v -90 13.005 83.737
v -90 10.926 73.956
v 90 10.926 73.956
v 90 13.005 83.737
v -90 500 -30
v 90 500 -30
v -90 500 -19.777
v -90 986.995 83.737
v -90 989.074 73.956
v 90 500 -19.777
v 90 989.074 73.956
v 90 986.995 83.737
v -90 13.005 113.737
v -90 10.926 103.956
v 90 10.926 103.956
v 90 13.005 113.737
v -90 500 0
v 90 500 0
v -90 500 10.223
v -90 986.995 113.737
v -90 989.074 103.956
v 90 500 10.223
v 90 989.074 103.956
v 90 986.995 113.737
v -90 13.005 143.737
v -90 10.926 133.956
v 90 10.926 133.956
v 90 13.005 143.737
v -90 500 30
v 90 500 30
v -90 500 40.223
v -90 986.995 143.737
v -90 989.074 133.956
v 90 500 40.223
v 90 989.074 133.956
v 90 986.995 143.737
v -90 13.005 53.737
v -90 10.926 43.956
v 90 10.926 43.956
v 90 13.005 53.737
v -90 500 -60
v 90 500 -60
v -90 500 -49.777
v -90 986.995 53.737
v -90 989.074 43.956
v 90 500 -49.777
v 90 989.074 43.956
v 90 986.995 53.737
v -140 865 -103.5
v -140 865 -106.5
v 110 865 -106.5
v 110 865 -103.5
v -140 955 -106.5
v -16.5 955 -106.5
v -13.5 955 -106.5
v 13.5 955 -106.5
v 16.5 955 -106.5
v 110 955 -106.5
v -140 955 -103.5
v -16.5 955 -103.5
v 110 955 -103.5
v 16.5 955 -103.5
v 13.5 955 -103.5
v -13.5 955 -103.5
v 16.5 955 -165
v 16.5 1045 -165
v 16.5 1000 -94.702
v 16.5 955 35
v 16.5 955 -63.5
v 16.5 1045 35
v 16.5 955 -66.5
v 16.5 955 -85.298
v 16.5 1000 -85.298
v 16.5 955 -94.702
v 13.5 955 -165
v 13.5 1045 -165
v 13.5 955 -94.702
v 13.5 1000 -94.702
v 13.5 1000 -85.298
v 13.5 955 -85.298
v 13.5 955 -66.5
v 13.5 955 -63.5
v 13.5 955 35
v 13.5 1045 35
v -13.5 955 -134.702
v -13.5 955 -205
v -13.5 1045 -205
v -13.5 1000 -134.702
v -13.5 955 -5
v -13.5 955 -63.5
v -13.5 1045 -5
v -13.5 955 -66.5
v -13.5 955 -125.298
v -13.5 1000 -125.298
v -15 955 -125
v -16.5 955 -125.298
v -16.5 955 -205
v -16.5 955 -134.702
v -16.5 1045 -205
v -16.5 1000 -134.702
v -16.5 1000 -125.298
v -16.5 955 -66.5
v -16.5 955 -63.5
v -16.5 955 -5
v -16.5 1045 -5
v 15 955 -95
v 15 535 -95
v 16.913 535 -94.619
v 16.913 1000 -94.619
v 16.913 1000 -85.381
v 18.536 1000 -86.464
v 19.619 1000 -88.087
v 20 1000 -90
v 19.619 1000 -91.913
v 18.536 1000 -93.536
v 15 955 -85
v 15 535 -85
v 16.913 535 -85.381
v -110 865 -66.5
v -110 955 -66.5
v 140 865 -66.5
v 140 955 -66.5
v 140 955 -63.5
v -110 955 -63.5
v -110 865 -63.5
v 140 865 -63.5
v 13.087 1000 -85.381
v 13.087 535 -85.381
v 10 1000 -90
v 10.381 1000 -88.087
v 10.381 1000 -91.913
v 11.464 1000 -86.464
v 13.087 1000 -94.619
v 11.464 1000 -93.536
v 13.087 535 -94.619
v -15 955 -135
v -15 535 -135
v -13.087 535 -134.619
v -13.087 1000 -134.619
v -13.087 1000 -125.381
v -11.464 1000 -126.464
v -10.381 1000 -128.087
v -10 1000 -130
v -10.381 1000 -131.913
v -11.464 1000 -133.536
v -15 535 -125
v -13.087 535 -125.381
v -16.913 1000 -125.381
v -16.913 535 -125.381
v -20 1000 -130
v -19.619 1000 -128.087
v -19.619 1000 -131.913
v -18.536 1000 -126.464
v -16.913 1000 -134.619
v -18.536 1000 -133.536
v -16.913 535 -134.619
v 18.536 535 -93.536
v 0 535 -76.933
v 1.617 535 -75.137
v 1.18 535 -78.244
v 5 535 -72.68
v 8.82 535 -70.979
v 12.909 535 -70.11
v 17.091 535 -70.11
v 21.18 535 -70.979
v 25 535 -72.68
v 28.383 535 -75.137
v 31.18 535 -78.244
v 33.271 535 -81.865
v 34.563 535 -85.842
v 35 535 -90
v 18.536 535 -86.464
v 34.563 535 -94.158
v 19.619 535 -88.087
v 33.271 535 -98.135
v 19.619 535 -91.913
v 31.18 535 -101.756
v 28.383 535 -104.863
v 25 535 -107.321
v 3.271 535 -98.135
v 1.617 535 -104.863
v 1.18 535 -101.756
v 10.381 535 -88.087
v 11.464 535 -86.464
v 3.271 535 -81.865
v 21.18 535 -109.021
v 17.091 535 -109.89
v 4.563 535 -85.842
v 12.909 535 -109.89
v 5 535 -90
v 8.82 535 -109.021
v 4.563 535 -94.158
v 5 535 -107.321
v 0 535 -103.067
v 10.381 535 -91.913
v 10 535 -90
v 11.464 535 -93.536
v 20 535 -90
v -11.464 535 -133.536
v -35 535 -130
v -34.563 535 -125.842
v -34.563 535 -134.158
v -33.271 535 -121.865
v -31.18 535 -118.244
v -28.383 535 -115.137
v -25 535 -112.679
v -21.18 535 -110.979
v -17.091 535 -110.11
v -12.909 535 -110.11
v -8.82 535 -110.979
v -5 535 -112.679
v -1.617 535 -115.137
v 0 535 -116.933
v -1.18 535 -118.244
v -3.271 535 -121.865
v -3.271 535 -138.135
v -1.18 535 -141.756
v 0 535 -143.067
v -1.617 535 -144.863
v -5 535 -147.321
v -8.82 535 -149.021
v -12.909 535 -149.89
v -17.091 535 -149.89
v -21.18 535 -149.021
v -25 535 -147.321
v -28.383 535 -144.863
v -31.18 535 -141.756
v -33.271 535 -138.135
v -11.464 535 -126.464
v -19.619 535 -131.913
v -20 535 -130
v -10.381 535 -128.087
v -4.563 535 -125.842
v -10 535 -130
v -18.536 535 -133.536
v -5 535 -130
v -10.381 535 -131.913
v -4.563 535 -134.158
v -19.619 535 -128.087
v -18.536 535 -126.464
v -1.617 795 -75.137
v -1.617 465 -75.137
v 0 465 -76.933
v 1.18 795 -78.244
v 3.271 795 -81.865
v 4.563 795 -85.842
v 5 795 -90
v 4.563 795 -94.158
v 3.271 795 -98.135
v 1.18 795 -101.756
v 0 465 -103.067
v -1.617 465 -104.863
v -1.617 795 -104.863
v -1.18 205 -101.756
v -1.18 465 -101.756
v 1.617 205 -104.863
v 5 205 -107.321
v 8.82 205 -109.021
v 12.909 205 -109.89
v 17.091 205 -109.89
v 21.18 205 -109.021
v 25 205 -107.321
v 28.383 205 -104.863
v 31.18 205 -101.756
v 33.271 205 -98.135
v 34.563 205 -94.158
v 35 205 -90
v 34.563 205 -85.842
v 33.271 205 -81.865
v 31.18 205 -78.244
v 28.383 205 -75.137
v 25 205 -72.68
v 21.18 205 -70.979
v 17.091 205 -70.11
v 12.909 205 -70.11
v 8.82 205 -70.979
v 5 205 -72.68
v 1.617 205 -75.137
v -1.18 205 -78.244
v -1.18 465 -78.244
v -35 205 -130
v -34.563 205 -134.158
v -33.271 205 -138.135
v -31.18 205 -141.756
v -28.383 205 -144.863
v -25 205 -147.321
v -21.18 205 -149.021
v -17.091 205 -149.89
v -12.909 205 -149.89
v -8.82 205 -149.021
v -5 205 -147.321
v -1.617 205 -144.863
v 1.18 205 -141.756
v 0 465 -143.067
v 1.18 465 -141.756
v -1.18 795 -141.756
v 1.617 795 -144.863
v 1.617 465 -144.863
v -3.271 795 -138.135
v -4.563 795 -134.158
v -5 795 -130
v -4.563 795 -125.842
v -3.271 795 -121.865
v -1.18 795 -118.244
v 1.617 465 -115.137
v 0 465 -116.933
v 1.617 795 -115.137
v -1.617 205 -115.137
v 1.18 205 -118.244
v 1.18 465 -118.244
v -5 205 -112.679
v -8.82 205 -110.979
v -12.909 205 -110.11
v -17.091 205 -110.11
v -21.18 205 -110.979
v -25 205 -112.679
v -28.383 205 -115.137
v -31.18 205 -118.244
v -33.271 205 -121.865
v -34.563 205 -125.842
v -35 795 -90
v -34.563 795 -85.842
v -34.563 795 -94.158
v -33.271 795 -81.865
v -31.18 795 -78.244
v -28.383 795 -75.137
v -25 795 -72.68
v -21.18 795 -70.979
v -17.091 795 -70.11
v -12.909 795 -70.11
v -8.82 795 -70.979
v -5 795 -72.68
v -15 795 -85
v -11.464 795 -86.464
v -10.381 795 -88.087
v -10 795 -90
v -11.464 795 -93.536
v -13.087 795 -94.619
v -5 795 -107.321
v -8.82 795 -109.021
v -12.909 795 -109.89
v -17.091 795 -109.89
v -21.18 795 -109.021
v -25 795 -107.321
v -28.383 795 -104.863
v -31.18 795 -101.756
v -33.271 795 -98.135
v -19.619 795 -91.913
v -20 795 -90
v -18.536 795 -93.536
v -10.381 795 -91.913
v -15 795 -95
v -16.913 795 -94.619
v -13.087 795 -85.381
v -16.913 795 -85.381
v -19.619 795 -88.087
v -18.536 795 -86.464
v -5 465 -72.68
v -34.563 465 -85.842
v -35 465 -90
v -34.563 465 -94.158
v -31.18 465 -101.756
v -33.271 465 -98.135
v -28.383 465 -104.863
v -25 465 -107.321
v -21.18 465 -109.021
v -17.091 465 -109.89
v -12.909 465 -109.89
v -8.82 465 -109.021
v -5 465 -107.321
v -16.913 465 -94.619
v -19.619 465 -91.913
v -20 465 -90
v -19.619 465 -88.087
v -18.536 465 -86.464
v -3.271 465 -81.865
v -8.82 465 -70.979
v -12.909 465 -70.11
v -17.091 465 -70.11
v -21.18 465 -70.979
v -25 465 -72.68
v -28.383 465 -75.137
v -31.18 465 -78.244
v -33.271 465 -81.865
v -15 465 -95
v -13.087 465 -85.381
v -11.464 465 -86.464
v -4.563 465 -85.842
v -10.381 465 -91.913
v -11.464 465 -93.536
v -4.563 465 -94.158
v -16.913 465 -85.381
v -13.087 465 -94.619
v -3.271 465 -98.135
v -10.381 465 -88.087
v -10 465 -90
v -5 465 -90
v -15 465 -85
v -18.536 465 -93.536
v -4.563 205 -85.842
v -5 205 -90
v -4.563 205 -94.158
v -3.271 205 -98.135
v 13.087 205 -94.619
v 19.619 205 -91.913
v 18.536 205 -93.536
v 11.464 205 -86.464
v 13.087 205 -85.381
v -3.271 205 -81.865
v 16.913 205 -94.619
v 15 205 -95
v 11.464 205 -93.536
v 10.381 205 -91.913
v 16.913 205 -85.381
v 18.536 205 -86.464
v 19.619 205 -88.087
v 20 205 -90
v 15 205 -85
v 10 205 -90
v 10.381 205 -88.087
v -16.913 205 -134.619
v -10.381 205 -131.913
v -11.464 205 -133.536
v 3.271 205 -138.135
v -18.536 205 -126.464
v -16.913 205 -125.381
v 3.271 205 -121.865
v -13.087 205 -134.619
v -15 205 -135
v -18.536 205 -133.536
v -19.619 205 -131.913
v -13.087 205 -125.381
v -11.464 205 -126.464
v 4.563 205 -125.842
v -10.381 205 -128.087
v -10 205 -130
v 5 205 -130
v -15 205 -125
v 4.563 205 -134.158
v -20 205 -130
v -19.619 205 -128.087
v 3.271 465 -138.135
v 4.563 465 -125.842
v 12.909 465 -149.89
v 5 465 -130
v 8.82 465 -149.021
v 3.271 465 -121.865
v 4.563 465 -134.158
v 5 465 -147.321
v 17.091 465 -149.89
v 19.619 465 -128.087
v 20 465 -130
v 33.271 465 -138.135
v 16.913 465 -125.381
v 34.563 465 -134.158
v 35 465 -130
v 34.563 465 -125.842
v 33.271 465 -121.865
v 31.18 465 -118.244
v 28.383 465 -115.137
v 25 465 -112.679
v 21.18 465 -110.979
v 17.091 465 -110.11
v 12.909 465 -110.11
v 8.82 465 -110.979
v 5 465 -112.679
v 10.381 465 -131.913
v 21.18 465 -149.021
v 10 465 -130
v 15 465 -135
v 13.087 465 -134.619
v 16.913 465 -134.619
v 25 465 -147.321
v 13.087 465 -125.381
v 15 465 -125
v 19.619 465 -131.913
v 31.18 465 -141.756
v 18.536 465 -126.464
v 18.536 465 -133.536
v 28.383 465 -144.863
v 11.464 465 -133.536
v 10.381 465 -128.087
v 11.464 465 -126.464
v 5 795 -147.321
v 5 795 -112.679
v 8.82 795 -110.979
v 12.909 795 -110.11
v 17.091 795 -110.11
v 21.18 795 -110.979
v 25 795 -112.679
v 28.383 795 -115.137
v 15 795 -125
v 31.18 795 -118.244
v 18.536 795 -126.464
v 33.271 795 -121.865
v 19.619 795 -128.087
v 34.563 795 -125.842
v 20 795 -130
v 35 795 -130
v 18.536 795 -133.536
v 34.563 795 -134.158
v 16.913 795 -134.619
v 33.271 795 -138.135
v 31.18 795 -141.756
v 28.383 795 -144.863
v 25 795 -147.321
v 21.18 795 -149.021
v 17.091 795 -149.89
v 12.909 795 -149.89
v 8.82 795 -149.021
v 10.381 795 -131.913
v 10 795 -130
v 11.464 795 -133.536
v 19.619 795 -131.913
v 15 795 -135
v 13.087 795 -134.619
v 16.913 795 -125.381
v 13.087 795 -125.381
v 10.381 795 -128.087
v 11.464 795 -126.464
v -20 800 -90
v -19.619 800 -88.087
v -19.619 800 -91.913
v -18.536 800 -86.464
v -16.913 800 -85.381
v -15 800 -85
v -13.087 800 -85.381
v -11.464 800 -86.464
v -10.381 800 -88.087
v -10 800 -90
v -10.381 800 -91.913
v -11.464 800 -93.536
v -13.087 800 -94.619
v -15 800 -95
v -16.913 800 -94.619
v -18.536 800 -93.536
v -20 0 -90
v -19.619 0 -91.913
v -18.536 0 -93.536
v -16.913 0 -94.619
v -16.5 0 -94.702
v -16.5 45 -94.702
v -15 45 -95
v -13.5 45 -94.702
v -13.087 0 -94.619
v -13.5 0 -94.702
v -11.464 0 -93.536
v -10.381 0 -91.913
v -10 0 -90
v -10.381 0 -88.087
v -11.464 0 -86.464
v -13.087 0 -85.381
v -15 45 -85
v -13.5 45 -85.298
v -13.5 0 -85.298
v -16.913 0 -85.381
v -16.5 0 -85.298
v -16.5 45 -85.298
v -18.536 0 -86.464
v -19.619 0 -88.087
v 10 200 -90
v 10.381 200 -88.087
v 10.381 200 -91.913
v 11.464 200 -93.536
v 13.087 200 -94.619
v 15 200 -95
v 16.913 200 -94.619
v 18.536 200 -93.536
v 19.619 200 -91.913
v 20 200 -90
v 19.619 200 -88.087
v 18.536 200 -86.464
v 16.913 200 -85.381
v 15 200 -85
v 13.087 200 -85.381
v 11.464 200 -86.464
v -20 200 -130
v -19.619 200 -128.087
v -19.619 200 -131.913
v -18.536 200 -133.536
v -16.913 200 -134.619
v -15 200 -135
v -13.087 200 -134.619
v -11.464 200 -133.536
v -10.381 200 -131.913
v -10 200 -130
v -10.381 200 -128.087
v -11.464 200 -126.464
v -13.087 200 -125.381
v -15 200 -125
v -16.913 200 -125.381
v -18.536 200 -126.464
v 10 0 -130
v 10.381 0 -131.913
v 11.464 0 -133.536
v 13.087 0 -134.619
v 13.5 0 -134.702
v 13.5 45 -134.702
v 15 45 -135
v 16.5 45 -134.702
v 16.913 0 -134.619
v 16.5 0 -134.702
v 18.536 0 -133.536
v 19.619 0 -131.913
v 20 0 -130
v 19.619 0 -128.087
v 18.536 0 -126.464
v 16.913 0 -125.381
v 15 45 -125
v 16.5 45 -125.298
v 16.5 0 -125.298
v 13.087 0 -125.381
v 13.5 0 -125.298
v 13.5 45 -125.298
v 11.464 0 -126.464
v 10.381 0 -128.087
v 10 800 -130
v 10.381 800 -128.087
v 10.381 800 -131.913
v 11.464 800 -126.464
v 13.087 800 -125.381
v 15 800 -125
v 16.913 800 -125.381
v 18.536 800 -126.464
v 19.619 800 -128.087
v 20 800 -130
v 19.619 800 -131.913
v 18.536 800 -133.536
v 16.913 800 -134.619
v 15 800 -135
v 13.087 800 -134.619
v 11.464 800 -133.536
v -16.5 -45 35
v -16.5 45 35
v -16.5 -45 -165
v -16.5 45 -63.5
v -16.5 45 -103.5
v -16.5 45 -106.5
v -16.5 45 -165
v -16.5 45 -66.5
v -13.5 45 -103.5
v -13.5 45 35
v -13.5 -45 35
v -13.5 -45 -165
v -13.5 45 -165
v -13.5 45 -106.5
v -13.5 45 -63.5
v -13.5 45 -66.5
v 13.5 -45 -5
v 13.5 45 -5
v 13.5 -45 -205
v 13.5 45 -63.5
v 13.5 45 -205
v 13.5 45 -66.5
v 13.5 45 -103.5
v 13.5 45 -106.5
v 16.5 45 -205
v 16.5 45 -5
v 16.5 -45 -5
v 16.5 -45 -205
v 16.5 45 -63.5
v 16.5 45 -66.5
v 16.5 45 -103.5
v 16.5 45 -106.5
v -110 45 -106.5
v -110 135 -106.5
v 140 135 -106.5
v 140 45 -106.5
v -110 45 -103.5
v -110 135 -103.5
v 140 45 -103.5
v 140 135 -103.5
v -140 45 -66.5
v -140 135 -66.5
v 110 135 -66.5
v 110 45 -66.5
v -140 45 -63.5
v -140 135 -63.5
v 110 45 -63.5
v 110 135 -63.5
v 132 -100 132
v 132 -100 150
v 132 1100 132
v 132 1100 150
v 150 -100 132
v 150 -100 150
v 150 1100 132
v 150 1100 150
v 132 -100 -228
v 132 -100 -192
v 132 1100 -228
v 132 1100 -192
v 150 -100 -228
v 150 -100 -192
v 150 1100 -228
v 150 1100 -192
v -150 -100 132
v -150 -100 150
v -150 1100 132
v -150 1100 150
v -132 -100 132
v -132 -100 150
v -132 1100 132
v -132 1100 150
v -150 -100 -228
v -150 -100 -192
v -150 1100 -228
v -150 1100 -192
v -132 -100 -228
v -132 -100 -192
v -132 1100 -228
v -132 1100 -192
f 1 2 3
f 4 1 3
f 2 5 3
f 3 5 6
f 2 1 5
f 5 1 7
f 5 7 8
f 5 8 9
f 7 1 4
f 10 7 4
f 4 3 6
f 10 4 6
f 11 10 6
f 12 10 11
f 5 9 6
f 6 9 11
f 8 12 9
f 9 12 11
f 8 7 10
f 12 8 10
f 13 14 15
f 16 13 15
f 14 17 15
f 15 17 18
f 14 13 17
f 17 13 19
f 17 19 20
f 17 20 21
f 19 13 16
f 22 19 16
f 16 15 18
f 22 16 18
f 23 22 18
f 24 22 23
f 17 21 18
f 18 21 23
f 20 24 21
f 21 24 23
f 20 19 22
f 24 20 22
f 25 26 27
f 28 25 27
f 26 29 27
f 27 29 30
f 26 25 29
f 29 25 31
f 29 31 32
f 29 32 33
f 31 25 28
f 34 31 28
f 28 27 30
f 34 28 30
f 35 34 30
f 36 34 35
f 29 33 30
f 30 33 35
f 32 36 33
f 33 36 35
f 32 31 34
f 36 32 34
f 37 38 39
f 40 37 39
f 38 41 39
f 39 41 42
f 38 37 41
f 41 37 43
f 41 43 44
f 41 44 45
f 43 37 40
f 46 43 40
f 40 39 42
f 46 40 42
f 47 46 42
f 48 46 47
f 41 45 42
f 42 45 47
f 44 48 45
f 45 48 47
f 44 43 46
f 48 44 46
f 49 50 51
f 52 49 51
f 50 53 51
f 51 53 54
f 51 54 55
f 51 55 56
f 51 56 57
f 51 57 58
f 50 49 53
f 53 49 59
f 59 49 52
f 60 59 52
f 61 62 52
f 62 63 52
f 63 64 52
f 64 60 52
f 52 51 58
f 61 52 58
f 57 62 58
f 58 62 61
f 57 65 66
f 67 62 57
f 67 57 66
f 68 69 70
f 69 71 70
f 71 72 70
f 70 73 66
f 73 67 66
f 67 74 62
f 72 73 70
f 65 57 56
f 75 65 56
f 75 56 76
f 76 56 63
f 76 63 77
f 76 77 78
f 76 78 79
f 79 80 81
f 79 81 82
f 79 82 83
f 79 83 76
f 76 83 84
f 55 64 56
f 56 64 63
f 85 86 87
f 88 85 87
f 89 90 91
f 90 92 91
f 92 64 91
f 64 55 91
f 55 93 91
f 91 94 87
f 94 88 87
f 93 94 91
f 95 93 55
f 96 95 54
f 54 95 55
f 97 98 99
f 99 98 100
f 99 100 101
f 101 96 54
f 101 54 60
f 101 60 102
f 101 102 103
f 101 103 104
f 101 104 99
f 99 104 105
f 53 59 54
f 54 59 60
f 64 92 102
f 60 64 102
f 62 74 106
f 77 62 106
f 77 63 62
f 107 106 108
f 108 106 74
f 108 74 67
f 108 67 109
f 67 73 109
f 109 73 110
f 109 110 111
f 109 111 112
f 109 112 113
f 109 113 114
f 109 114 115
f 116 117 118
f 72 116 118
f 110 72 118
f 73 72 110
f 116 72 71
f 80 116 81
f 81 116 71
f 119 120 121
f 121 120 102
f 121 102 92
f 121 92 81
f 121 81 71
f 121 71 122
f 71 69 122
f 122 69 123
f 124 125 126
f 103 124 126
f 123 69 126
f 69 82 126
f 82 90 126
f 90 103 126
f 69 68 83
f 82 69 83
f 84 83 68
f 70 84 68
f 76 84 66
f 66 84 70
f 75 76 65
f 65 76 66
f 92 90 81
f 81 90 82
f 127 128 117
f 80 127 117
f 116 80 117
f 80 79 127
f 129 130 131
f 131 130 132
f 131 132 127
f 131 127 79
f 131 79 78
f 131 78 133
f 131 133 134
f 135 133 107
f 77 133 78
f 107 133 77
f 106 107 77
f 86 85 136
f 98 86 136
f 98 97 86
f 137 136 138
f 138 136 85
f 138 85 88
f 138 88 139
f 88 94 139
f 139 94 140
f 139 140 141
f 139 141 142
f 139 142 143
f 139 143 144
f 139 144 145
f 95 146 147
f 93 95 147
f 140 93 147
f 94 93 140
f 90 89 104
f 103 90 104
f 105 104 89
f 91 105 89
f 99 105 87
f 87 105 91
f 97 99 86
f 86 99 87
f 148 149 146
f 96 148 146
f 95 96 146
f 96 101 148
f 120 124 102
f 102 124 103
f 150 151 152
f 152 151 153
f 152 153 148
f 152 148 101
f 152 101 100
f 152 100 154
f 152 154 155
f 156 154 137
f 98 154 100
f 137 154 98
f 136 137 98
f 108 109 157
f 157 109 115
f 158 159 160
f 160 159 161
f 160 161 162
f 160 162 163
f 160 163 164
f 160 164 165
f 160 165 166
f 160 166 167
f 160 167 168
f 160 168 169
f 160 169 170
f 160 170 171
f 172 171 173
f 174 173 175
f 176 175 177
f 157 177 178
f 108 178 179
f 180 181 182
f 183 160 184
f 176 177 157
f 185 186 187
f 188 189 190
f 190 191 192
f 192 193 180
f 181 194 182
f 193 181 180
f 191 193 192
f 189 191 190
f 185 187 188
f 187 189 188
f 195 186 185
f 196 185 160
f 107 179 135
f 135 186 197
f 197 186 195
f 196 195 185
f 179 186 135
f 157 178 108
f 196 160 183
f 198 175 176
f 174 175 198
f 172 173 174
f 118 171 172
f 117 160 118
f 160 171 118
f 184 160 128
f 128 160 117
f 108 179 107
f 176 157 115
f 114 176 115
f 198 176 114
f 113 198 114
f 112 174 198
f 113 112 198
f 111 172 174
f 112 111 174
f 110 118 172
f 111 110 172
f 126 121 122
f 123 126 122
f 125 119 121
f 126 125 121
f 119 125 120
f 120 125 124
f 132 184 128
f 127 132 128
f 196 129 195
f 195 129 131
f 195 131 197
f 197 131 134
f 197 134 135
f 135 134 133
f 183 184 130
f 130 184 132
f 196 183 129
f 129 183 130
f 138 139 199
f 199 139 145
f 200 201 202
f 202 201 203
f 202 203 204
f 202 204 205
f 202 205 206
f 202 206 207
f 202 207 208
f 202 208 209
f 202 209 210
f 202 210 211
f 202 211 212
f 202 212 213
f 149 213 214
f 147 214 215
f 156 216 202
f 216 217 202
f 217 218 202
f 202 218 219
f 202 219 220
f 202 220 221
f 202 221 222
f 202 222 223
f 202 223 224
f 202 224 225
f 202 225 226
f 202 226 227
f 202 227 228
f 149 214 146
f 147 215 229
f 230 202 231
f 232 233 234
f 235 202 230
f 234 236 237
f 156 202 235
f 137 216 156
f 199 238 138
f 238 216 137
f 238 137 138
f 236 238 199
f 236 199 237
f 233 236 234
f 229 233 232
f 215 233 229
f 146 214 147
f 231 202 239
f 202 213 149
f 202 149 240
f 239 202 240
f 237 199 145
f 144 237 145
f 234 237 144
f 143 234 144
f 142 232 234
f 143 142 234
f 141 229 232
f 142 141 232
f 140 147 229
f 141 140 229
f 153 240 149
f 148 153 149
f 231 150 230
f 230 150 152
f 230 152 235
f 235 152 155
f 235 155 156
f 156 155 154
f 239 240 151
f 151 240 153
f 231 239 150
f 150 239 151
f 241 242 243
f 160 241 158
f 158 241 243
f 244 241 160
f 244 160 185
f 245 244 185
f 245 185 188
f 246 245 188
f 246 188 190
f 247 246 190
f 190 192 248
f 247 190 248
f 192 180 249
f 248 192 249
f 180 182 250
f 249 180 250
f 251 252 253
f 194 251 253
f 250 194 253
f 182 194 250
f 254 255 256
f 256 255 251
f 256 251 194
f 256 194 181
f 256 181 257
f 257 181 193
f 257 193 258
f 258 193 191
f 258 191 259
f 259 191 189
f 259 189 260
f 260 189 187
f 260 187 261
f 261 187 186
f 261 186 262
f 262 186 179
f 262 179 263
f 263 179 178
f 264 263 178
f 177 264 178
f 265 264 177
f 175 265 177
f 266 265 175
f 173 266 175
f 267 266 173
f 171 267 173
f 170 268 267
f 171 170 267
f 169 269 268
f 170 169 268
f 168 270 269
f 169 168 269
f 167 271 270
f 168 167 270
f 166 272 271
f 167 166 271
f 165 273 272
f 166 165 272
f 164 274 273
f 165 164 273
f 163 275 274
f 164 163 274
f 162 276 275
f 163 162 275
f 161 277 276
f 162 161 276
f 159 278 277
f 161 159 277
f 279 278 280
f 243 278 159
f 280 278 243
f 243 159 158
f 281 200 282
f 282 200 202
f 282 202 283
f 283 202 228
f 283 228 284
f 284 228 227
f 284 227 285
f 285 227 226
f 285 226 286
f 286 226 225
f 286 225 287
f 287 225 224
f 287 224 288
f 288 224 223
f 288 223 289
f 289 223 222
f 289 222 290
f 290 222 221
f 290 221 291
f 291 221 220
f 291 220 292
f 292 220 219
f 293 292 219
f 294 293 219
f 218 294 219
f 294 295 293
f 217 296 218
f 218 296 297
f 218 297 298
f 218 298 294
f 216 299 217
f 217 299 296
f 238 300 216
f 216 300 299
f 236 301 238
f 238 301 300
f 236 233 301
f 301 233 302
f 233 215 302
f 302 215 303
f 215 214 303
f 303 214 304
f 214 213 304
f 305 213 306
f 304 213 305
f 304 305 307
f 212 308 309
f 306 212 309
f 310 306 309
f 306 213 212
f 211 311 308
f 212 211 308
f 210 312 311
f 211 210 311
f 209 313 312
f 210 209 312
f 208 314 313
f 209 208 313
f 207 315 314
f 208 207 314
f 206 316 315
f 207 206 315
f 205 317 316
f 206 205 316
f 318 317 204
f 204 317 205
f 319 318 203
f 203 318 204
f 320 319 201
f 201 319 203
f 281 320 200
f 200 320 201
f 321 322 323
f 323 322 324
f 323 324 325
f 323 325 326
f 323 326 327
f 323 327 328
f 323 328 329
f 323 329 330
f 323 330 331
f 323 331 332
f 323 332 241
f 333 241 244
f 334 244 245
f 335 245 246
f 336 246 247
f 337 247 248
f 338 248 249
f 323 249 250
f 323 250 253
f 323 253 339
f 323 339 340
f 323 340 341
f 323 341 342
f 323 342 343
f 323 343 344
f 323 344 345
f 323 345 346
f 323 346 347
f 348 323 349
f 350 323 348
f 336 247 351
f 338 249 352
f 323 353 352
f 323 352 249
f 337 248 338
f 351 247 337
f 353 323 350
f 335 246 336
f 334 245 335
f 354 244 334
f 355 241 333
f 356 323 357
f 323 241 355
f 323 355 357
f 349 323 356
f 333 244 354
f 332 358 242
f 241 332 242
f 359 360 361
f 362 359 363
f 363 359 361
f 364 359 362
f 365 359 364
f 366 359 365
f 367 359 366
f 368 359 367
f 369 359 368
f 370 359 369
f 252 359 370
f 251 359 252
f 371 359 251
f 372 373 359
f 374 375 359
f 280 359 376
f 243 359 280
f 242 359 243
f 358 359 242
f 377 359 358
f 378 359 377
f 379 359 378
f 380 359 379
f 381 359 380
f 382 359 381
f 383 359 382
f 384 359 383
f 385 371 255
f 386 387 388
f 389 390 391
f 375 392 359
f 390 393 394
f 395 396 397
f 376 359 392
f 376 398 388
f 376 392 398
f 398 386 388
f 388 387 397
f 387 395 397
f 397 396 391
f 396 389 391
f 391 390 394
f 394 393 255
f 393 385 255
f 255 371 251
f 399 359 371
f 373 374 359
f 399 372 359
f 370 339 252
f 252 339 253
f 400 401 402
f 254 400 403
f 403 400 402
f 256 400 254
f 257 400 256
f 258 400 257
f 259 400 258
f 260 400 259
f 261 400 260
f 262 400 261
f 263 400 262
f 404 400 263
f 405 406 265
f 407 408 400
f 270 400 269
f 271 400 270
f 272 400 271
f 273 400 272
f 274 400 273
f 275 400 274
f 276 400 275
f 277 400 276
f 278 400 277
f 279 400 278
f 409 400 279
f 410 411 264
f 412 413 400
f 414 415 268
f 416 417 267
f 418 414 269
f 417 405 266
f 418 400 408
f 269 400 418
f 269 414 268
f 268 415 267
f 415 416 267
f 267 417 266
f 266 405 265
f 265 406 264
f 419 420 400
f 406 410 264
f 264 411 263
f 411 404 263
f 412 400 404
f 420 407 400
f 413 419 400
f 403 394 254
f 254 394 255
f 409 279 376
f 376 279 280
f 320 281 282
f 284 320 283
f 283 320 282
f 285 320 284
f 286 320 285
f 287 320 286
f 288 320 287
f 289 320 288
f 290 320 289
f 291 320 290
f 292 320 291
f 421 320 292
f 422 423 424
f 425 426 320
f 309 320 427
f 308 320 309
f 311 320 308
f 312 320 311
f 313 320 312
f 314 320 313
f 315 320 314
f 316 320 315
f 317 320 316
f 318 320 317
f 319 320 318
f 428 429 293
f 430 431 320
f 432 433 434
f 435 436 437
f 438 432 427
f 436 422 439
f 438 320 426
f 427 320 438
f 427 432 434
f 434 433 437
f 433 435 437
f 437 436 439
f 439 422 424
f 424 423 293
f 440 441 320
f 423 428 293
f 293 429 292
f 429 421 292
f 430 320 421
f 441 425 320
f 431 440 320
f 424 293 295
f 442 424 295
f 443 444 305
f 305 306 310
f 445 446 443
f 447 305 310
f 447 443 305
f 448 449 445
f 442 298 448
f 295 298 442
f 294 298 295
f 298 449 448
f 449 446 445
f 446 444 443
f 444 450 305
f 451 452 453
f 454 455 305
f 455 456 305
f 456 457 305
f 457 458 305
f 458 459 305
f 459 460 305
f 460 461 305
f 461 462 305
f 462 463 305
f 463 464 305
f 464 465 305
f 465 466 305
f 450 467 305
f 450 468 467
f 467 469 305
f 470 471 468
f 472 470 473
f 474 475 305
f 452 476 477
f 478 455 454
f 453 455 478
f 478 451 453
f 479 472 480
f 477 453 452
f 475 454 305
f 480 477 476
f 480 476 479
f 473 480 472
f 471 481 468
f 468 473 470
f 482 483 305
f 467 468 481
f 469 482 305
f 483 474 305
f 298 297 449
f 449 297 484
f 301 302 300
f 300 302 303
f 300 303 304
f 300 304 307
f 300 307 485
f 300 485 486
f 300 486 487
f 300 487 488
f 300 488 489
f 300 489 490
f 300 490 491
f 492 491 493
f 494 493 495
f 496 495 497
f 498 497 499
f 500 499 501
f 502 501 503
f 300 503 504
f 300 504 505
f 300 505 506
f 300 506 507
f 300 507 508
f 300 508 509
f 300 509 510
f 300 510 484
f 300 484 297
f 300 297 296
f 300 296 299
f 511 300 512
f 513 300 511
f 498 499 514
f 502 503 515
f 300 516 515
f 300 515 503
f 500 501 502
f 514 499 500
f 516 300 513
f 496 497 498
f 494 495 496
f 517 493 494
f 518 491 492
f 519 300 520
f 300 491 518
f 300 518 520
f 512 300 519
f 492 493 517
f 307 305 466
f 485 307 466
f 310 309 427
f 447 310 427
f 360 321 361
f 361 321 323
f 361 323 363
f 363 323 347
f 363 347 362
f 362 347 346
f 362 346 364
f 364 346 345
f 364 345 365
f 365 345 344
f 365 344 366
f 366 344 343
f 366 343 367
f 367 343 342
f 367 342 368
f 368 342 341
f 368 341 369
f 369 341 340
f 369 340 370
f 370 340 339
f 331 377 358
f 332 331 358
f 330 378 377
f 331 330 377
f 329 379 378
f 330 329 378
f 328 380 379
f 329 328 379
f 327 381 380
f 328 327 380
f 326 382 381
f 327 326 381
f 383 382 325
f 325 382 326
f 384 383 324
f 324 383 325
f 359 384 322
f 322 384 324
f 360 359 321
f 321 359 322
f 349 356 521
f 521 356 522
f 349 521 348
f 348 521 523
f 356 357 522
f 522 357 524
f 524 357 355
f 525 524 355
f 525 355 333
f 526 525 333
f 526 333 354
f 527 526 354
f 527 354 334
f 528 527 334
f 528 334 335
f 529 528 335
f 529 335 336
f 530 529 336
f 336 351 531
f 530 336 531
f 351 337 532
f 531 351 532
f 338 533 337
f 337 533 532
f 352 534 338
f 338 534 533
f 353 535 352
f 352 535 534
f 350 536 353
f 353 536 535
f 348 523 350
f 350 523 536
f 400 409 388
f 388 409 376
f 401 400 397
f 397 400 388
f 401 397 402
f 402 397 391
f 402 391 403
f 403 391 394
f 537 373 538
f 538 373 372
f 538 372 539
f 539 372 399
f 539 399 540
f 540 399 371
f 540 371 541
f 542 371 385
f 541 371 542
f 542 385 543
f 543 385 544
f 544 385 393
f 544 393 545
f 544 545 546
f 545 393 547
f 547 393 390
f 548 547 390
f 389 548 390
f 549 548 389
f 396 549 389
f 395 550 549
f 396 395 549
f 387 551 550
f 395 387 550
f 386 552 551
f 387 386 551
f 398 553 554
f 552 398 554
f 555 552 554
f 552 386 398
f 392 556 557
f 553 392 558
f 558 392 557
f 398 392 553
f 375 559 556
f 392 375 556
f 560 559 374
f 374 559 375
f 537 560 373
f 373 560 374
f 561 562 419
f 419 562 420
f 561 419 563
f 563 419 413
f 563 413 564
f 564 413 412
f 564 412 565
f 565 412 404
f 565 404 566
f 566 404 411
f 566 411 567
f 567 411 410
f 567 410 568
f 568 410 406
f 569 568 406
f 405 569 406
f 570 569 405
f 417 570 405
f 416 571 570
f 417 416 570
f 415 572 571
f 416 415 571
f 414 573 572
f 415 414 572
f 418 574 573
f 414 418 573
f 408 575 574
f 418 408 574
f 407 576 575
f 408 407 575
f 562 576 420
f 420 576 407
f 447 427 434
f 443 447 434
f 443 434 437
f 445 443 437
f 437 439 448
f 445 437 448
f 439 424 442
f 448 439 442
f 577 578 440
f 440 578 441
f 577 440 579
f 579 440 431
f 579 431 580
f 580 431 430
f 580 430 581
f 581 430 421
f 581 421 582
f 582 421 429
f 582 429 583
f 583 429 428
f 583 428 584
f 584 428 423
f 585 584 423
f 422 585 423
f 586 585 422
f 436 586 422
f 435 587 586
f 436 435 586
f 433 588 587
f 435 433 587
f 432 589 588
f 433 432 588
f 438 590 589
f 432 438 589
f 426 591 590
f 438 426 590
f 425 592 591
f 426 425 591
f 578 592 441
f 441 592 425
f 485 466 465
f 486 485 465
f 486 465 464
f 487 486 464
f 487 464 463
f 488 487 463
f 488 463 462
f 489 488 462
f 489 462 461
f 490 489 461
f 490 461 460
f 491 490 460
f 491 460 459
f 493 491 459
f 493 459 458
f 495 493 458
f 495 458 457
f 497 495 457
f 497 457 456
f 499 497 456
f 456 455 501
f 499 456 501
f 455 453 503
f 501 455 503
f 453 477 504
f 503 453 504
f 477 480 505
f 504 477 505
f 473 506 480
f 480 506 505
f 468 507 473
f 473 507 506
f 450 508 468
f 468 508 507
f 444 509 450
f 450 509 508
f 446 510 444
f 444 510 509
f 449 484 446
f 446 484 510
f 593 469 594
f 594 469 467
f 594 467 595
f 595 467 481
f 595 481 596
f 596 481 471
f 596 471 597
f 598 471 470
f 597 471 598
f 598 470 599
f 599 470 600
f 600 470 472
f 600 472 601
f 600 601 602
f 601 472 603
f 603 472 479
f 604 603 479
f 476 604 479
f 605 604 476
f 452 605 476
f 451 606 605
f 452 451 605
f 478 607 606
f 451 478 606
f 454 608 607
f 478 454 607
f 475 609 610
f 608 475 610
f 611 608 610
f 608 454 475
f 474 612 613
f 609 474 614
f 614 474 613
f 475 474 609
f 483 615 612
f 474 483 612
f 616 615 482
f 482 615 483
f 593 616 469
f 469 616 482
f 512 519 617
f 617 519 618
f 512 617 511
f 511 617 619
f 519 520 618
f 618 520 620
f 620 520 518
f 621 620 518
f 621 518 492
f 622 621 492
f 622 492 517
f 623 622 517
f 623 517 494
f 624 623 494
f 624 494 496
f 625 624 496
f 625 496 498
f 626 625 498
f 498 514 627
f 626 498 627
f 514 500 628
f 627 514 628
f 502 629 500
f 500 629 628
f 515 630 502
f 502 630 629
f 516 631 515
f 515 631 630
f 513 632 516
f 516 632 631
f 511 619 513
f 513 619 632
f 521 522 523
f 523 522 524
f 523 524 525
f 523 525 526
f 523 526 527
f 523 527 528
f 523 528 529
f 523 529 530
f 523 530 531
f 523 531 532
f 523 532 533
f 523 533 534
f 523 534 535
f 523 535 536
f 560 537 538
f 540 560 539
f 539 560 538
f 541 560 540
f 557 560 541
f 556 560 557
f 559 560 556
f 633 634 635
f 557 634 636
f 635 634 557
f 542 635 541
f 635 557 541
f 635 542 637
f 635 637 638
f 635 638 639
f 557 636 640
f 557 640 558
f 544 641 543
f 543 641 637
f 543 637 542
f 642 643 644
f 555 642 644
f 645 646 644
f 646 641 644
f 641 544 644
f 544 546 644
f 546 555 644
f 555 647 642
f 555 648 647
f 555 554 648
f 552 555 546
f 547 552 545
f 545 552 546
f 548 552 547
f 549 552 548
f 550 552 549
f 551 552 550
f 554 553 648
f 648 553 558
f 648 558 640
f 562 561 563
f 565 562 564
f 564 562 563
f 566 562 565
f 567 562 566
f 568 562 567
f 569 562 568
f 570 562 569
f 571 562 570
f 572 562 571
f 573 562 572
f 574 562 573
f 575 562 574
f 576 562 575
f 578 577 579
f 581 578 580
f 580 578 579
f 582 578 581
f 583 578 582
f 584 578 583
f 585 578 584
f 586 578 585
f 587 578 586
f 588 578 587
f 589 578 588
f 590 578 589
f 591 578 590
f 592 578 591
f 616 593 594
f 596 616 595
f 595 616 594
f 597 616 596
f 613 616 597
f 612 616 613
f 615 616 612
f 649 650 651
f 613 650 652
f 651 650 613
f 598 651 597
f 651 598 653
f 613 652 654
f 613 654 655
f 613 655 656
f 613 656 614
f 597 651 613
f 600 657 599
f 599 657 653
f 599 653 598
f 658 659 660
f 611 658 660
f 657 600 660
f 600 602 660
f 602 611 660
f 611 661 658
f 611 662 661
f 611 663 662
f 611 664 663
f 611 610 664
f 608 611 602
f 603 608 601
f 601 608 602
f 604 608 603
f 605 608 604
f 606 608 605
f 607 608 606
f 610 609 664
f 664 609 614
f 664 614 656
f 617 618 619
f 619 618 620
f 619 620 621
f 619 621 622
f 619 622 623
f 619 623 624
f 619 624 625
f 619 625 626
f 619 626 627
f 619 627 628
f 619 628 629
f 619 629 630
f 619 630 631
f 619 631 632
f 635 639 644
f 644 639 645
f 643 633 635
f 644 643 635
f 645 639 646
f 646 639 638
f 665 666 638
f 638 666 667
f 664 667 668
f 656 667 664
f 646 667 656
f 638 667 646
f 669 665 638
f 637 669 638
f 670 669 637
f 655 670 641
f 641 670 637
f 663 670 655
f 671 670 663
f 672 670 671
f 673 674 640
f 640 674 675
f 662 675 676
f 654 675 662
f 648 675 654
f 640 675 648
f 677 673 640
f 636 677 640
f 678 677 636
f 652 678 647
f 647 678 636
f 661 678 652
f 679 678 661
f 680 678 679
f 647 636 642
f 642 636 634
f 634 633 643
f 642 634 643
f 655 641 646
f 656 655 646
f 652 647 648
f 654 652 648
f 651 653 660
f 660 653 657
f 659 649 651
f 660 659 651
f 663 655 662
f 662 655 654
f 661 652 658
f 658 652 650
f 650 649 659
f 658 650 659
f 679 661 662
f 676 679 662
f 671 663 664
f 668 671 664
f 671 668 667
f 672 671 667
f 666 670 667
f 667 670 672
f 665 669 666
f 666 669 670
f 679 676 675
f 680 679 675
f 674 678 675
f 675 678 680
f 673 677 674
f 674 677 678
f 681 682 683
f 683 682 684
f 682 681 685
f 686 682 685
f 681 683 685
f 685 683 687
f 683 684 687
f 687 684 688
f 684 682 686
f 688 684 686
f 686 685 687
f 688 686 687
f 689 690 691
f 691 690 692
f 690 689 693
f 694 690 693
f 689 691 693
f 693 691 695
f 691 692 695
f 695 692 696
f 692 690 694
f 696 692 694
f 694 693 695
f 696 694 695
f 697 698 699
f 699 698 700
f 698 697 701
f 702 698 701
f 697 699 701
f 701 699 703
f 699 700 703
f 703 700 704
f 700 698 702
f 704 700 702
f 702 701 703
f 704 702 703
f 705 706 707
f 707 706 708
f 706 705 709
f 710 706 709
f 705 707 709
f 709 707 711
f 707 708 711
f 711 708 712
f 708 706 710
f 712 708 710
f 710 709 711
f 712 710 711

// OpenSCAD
module fuselage() {
	// horizontal stabaliser
	translate([0,90,25]) cube([250,90,3], center = true);
	// vertical stabaliser
	rotate(90, [0,1,0]) translate([-25, 0, 0]) cube([200,90,3], center = true);
	// boom
    translate([0, 400, 0]) rotate(90, [1,0,0]) cylinder(r = 5, h = 800, center = true);
	// fuselage
    translate([0, 630, 0]) rotate(90, [1,0,0]) cylinder(r = 20, h = 330, center = true);
 }

module wing() {
	//cube([180, 1000, 110]); // this cube is the are filled by the wing
	translate([90, 500, 0]) 
	rotate(90, [0,0,1]) {
		rotate(-12, [0,1,0]) cube([500,180,10]);
		rotate(12, [0,1,0]) translate([-500, 0, 0]) cube([500,180,10]);
	}
}
module dlgBox() {
	// main frame
	translate([0, 500, -30]) {
		translate([150-9, 0, 180-9]) cube([18, 1200, 18], center = true);
		translate([150-9, 0, -180+9]) cube([18, 1200, 18], center = true);
		translate([-150+9, 0, 180-9]) cube([18, 1200, 18], center = true);
		translate([-150+9, 0, -180+9]) cube([18, 1200, 18], center = true);
		// lid
		translate([-150+9, 0, -180-9]) cube([18, 1200, 18], center = true);
		translate([150-9, 0, -180-9]) cube([18, 1200, 18], center = true);
		//#cube([300, 1200, 360], center = true);
	}
}
// wing gap of 30 mm seem too small?
translate([0, 0, -30]) wing();
wing();
translate([0, 0, 30]) wing();
translate([0, 0, -60]) wing();

module stackedFuselages() {
	translate([-15, 0, -90]) fuselage();
	translate([15, 0, -130]) fuselage();
}

stackedFuselages();
translate([0, 1000, 0]) rotate(180, [0,0,1]) stackedFuselages();

dlgBox();
